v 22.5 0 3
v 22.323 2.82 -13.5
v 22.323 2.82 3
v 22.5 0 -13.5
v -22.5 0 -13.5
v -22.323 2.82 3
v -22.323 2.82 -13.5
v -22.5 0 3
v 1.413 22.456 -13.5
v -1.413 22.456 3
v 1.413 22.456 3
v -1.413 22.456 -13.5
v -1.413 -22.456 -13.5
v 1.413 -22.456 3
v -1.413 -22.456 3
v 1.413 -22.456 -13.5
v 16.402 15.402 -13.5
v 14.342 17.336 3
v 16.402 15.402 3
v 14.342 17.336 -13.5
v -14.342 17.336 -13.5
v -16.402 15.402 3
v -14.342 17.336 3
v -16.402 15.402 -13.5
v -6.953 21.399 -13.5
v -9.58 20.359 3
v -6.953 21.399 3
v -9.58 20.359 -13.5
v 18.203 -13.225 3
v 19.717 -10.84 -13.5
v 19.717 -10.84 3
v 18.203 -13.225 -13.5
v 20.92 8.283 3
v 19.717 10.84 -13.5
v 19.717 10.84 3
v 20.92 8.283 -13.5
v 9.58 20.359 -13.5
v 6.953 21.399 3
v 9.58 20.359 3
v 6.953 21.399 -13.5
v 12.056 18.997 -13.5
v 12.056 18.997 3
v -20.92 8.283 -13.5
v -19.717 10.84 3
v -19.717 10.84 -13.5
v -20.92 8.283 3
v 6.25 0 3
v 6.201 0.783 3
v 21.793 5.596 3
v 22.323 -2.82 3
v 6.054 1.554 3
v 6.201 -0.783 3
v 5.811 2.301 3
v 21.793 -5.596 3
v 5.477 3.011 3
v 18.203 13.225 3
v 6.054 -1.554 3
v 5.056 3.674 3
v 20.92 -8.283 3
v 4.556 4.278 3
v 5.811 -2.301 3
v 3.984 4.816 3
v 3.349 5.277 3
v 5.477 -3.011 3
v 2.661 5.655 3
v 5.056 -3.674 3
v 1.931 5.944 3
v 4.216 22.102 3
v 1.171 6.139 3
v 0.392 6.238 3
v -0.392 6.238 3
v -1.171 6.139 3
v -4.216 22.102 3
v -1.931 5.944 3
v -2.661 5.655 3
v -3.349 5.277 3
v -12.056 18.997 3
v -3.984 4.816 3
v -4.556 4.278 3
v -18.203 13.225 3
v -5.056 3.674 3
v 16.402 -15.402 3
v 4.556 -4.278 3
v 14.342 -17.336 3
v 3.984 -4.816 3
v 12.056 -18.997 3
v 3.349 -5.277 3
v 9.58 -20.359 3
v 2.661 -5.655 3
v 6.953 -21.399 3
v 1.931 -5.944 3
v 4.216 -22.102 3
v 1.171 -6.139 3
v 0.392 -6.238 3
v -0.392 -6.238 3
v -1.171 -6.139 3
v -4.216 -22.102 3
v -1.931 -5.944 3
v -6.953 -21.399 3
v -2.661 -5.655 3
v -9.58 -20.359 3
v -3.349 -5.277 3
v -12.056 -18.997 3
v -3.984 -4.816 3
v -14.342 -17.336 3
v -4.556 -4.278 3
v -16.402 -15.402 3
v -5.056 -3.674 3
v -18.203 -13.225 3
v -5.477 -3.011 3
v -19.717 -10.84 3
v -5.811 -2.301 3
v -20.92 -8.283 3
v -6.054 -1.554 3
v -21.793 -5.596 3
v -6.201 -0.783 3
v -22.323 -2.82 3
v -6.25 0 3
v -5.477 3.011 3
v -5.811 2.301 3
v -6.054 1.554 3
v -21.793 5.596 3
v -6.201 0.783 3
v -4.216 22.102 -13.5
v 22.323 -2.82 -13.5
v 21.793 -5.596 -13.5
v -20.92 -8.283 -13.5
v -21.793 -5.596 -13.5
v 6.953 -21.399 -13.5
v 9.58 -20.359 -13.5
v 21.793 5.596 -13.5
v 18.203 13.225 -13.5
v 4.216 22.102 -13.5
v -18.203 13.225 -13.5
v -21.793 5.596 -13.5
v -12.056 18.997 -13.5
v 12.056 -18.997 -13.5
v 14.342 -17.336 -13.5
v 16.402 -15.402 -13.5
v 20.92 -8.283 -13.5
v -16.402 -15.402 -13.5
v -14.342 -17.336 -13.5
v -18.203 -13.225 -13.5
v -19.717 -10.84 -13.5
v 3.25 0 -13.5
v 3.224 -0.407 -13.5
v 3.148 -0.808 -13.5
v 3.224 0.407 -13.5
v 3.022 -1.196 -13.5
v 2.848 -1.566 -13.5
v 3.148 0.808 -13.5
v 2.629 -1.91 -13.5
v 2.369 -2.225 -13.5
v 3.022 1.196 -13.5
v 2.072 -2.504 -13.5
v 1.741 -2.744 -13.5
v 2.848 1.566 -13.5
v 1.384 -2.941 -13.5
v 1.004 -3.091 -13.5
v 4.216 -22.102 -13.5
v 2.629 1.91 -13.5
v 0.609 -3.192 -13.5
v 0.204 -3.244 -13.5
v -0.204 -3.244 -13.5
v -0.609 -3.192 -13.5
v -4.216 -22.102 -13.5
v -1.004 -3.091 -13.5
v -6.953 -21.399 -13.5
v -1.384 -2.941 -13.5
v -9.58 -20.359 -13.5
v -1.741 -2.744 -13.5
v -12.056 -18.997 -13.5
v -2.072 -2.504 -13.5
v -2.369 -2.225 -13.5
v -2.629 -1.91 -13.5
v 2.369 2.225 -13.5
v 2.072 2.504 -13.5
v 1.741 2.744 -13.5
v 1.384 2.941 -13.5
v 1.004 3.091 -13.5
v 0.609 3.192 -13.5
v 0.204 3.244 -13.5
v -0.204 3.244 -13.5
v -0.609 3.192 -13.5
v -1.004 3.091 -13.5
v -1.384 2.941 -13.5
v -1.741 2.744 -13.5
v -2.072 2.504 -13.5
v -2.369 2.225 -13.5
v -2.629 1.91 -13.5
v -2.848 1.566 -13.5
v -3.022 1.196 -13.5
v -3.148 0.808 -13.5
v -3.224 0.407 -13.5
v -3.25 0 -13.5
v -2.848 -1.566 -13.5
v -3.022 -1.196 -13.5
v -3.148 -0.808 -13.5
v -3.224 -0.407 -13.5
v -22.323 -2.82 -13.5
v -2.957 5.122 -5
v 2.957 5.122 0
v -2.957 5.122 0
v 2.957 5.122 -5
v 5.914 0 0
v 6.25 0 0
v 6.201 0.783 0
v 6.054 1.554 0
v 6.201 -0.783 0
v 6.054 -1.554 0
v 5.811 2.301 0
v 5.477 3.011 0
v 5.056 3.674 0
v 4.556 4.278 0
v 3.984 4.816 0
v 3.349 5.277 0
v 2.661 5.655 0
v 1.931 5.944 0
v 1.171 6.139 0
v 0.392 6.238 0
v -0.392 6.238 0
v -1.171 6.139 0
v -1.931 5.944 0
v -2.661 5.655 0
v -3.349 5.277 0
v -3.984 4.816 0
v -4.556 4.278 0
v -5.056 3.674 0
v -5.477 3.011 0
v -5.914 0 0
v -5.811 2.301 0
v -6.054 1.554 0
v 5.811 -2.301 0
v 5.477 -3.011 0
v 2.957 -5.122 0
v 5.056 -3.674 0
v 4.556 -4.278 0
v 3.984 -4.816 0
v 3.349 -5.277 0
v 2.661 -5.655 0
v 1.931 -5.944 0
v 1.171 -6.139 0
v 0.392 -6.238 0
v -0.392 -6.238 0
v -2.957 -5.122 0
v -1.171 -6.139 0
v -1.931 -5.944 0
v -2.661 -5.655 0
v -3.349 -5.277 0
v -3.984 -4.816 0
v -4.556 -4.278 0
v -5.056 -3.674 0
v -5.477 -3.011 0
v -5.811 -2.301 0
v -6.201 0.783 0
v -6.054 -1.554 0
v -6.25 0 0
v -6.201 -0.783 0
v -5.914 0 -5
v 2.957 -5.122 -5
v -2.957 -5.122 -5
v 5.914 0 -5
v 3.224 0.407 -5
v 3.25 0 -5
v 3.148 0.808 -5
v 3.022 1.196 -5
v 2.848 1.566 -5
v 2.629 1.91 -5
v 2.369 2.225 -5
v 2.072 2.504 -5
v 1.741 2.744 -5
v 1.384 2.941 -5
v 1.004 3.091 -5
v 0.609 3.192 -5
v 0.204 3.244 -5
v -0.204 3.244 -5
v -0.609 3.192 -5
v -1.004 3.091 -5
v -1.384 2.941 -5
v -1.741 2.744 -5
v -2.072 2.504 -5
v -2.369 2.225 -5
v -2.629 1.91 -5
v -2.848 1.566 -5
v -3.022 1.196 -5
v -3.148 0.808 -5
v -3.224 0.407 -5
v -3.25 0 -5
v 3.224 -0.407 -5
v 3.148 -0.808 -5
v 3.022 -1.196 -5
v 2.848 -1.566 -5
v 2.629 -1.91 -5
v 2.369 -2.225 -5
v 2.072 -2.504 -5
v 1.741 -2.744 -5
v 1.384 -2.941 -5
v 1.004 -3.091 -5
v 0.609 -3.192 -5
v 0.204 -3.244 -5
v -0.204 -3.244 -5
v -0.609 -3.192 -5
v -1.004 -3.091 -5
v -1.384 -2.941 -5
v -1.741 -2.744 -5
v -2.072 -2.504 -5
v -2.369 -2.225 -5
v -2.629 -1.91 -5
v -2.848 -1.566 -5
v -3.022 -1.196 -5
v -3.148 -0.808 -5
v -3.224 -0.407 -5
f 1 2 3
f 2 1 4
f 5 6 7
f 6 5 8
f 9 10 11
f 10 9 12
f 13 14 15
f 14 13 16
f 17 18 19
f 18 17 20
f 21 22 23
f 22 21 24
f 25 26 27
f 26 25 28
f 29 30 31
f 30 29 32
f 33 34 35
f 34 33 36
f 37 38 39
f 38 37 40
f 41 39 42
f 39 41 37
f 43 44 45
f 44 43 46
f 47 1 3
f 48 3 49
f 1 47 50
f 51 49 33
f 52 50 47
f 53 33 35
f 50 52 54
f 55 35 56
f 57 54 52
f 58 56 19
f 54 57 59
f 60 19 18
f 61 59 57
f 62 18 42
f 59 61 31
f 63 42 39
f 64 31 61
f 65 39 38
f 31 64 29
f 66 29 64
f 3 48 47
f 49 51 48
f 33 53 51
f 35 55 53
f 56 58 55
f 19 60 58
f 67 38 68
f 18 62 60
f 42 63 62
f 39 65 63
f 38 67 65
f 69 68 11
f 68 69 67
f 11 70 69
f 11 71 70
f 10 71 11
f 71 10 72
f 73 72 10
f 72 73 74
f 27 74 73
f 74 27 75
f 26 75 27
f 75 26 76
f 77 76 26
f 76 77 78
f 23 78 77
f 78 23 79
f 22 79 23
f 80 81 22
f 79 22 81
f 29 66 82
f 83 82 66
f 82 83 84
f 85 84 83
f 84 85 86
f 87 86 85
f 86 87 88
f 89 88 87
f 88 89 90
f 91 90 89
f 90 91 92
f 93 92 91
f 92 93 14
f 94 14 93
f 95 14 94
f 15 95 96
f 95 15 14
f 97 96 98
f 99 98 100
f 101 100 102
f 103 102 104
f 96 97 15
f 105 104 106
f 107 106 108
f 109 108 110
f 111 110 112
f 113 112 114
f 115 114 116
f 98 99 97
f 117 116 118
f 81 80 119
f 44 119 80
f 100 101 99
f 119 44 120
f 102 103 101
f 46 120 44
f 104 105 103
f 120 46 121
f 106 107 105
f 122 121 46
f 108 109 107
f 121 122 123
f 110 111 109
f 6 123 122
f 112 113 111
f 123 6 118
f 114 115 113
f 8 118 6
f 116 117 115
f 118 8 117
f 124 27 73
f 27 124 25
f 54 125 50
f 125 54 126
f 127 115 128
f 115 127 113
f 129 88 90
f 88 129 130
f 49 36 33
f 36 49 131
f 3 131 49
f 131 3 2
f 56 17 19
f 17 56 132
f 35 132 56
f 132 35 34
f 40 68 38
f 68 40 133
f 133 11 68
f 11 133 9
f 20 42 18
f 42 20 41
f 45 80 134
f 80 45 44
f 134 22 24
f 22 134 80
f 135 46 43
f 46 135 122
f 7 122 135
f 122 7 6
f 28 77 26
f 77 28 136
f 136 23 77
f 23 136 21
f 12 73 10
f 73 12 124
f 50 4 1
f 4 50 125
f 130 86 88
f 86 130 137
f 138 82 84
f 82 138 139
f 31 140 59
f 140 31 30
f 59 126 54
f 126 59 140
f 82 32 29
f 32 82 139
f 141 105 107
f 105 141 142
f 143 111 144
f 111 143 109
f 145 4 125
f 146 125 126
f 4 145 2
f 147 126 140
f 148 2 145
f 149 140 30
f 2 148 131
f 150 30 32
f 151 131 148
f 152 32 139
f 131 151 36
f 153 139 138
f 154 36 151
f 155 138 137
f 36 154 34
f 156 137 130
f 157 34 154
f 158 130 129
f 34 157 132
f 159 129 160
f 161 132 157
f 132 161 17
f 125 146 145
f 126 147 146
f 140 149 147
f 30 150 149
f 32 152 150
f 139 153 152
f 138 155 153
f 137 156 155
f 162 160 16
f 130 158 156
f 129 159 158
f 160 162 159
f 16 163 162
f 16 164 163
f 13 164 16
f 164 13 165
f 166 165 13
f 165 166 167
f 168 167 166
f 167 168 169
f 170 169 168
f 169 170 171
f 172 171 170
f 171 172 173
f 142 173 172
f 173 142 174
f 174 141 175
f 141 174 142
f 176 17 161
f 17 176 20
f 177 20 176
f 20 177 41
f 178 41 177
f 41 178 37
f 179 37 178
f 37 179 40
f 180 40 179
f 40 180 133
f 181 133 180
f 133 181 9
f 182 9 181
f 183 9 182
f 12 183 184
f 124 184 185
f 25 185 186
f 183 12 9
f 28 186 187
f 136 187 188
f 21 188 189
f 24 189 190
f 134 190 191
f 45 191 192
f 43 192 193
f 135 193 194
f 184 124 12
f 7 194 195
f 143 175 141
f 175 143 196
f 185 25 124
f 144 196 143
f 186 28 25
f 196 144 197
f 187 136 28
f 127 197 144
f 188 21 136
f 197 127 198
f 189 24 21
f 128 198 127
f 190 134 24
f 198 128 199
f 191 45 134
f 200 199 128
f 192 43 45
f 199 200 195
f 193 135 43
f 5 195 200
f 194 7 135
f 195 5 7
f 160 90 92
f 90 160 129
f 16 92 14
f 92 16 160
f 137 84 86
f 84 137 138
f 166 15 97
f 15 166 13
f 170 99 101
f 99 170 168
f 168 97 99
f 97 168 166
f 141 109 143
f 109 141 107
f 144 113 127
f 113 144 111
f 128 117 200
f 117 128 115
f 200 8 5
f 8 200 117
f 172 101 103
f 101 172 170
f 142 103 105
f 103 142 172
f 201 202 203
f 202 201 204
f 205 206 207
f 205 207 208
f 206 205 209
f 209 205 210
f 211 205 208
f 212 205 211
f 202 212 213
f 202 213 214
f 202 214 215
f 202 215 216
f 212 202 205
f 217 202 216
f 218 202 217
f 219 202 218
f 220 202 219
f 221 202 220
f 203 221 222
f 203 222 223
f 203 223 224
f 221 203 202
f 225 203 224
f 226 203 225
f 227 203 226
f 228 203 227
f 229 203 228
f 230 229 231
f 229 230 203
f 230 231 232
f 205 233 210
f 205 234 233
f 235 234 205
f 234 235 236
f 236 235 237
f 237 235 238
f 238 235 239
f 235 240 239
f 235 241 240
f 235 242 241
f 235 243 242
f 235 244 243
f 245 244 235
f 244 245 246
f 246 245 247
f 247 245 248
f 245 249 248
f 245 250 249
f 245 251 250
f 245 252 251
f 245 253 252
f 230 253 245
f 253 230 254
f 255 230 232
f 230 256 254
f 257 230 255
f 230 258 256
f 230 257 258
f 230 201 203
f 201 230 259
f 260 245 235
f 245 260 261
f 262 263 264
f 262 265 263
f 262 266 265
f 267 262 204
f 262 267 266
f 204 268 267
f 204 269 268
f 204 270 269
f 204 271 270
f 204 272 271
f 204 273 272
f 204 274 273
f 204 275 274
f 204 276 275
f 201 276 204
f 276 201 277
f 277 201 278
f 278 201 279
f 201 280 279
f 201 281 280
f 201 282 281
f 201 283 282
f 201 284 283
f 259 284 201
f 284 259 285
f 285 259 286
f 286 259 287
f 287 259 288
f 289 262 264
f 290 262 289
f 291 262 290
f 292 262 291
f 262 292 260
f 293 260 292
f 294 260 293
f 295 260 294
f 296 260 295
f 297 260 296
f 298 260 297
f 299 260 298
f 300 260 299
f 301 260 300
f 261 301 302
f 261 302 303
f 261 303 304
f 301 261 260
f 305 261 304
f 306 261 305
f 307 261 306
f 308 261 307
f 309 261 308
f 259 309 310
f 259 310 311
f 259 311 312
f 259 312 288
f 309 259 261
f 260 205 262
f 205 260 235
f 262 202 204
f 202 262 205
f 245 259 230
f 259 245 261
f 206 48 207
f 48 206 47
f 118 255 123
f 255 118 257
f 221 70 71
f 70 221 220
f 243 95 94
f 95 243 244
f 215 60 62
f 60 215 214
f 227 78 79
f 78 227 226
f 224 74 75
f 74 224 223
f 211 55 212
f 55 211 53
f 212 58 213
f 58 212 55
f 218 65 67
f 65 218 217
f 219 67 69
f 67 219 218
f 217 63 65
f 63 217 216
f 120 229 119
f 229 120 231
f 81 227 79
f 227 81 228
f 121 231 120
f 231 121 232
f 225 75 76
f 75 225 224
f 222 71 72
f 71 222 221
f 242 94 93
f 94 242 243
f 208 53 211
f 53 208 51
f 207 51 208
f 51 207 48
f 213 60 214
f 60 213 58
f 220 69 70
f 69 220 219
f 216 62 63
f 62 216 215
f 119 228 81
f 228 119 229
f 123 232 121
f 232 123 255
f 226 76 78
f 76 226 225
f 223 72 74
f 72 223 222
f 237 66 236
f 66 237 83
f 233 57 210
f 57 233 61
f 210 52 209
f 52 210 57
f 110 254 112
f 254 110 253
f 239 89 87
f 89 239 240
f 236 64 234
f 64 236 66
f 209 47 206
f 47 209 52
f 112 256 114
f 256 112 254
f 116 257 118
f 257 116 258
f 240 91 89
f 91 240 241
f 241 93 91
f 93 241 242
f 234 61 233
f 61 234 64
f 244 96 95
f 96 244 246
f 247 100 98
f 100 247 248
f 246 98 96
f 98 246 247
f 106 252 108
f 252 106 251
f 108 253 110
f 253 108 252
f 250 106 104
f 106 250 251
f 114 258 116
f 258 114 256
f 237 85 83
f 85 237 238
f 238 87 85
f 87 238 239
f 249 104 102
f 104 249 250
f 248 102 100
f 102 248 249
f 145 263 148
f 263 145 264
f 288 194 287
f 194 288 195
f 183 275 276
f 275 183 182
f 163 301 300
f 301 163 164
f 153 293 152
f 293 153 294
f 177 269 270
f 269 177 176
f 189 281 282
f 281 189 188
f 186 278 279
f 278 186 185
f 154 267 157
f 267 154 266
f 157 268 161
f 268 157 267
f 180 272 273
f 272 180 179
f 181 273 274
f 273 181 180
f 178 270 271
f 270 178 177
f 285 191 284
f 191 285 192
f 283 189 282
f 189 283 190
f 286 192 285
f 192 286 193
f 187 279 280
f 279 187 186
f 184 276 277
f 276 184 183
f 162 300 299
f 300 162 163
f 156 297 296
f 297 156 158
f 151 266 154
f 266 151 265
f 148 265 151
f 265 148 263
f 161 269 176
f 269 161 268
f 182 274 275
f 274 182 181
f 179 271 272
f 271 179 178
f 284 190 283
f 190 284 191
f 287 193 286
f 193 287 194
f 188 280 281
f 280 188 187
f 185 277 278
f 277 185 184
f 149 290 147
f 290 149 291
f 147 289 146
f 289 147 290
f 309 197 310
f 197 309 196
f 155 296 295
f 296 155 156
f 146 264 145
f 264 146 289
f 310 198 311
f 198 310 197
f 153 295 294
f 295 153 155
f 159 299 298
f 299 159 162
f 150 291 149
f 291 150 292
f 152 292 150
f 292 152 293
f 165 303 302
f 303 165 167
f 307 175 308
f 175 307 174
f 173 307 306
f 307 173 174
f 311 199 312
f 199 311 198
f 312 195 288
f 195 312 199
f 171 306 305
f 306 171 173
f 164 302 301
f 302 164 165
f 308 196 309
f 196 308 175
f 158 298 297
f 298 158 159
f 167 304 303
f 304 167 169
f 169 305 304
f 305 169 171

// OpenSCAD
$fn = 50;

difference() {
	union() {
		translate(v = [0, 0, -13.5]) {
			cylinder(h = 16.5, r = 22.5);
		}
		#translate(v = [0, 0, -15.0]) {
			cylinder(h = 15, r = 2.875);
		}
	}
	union() {
		translate(v = [0, 0, 0]) {
			rotate(a = [0, 0, 0]) {
				difference() {
					union() {
						translate(v = [0, 0, -5]) {
							linear_extrude(height = 5) {
								polygon(points = [[5.914249999999999, 0.0], [2.957125, 5.1218907443321156], [-2.9571249999999982, 5.1218907443321156], [-5.914249999999999, 7.242867331857232e-16], [-2.9571250000000022, -5.121890744332115], [2.9571249999999956, -5.121890744332118]]);
							}
						}
					}
					union();
				}
			}
		}
		#cylinder(h = 3, r = 6.25);
		#translate(v = [0, 0, -100.0]) {
			cylinder(h = 200, r = 3.25);
		}
	}
}
